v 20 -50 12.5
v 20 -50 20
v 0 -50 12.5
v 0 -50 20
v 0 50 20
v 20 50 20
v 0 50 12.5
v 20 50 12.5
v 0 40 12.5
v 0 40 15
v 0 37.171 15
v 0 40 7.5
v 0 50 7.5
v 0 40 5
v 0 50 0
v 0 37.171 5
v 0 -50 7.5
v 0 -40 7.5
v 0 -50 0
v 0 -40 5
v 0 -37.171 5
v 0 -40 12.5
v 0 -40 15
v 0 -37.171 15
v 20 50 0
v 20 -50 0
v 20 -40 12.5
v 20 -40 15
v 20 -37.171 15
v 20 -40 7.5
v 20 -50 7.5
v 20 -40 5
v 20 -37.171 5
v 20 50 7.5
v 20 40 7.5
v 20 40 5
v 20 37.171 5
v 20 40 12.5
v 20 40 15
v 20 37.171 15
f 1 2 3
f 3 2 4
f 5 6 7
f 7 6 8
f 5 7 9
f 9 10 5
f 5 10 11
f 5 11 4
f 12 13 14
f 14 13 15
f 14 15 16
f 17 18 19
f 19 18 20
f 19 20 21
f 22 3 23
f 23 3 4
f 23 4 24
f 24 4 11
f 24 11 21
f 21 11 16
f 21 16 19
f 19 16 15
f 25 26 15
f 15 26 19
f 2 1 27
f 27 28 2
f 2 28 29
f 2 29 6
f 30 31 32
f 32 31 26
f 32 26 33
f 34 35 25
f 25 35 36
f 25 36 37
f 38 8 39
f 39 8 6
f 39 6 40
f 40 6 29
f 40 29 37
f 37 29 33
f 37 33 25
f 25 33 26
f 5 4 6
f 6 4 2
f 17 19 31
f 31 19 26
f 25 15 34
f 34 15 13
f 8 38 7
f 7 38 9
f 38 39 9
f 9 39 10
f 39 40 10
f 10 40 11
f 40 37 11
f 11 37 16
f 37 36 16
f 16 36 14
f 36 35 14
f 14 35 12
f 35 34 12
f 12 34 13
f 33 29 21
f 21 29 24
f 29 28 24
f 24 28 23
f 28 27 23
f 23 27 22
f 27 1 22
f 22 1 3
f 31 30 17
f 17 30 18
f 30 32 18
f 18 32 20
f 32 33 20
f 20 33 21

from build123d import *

# Parameters (mm, degrees)
BOSS_EXTRUDE1_DEPTH      = 50
BOSS_EXTRUDE1_DEPTH_BACK = 50
SKETCH1_W                = 20
SKETCH1_H                = 20
CUT_EXTRUDE2_DEPTH       = 58.445626465


with BuildPart() as part:
    # Sketch1 → Boss-Extrude1 (new, two sides: drawn at the far end of the back side and taken through both)
    with BuildSketch(Plane(origin=(0, 0, 0), x_dir=(1, 0, 0), z_dir=(0, 1, 0)).offset(-BOSS_EXTRUDE1_DEPTH_BACK)):
        with Locations((10, -10)):
            Rectangle(SKETCH1_W, SKETCH1_H)
    extrude(amount=BOSS_EXTRUDE1_DEPTH + BOSS_EXTRUDE1_DEPTH_BACK)

    # Sketch3 → Cut-Extrude2 (cut, through all)
    with BuildSketch(Plane.ZY):
        Polygon((7.5, 40), (5, 40), (5, 37.171225458), (15, 37.171225458), (15, 40), (12.5, 40), (12.5, 50), (10, 50), (7.5, 50), align=None)
        Polygon((5, -37.171225458), (5, -40), (7.5, -40), (7.5, -50), (10, -50), (12.5, -50), (12.5, -40), (15, -40), (15, -37.171225458), align=None)
    extrude(amount=-CUT_EXTRUDE2_DEPTH, mode=Mode.SUBTRACT)


solid = part.part
